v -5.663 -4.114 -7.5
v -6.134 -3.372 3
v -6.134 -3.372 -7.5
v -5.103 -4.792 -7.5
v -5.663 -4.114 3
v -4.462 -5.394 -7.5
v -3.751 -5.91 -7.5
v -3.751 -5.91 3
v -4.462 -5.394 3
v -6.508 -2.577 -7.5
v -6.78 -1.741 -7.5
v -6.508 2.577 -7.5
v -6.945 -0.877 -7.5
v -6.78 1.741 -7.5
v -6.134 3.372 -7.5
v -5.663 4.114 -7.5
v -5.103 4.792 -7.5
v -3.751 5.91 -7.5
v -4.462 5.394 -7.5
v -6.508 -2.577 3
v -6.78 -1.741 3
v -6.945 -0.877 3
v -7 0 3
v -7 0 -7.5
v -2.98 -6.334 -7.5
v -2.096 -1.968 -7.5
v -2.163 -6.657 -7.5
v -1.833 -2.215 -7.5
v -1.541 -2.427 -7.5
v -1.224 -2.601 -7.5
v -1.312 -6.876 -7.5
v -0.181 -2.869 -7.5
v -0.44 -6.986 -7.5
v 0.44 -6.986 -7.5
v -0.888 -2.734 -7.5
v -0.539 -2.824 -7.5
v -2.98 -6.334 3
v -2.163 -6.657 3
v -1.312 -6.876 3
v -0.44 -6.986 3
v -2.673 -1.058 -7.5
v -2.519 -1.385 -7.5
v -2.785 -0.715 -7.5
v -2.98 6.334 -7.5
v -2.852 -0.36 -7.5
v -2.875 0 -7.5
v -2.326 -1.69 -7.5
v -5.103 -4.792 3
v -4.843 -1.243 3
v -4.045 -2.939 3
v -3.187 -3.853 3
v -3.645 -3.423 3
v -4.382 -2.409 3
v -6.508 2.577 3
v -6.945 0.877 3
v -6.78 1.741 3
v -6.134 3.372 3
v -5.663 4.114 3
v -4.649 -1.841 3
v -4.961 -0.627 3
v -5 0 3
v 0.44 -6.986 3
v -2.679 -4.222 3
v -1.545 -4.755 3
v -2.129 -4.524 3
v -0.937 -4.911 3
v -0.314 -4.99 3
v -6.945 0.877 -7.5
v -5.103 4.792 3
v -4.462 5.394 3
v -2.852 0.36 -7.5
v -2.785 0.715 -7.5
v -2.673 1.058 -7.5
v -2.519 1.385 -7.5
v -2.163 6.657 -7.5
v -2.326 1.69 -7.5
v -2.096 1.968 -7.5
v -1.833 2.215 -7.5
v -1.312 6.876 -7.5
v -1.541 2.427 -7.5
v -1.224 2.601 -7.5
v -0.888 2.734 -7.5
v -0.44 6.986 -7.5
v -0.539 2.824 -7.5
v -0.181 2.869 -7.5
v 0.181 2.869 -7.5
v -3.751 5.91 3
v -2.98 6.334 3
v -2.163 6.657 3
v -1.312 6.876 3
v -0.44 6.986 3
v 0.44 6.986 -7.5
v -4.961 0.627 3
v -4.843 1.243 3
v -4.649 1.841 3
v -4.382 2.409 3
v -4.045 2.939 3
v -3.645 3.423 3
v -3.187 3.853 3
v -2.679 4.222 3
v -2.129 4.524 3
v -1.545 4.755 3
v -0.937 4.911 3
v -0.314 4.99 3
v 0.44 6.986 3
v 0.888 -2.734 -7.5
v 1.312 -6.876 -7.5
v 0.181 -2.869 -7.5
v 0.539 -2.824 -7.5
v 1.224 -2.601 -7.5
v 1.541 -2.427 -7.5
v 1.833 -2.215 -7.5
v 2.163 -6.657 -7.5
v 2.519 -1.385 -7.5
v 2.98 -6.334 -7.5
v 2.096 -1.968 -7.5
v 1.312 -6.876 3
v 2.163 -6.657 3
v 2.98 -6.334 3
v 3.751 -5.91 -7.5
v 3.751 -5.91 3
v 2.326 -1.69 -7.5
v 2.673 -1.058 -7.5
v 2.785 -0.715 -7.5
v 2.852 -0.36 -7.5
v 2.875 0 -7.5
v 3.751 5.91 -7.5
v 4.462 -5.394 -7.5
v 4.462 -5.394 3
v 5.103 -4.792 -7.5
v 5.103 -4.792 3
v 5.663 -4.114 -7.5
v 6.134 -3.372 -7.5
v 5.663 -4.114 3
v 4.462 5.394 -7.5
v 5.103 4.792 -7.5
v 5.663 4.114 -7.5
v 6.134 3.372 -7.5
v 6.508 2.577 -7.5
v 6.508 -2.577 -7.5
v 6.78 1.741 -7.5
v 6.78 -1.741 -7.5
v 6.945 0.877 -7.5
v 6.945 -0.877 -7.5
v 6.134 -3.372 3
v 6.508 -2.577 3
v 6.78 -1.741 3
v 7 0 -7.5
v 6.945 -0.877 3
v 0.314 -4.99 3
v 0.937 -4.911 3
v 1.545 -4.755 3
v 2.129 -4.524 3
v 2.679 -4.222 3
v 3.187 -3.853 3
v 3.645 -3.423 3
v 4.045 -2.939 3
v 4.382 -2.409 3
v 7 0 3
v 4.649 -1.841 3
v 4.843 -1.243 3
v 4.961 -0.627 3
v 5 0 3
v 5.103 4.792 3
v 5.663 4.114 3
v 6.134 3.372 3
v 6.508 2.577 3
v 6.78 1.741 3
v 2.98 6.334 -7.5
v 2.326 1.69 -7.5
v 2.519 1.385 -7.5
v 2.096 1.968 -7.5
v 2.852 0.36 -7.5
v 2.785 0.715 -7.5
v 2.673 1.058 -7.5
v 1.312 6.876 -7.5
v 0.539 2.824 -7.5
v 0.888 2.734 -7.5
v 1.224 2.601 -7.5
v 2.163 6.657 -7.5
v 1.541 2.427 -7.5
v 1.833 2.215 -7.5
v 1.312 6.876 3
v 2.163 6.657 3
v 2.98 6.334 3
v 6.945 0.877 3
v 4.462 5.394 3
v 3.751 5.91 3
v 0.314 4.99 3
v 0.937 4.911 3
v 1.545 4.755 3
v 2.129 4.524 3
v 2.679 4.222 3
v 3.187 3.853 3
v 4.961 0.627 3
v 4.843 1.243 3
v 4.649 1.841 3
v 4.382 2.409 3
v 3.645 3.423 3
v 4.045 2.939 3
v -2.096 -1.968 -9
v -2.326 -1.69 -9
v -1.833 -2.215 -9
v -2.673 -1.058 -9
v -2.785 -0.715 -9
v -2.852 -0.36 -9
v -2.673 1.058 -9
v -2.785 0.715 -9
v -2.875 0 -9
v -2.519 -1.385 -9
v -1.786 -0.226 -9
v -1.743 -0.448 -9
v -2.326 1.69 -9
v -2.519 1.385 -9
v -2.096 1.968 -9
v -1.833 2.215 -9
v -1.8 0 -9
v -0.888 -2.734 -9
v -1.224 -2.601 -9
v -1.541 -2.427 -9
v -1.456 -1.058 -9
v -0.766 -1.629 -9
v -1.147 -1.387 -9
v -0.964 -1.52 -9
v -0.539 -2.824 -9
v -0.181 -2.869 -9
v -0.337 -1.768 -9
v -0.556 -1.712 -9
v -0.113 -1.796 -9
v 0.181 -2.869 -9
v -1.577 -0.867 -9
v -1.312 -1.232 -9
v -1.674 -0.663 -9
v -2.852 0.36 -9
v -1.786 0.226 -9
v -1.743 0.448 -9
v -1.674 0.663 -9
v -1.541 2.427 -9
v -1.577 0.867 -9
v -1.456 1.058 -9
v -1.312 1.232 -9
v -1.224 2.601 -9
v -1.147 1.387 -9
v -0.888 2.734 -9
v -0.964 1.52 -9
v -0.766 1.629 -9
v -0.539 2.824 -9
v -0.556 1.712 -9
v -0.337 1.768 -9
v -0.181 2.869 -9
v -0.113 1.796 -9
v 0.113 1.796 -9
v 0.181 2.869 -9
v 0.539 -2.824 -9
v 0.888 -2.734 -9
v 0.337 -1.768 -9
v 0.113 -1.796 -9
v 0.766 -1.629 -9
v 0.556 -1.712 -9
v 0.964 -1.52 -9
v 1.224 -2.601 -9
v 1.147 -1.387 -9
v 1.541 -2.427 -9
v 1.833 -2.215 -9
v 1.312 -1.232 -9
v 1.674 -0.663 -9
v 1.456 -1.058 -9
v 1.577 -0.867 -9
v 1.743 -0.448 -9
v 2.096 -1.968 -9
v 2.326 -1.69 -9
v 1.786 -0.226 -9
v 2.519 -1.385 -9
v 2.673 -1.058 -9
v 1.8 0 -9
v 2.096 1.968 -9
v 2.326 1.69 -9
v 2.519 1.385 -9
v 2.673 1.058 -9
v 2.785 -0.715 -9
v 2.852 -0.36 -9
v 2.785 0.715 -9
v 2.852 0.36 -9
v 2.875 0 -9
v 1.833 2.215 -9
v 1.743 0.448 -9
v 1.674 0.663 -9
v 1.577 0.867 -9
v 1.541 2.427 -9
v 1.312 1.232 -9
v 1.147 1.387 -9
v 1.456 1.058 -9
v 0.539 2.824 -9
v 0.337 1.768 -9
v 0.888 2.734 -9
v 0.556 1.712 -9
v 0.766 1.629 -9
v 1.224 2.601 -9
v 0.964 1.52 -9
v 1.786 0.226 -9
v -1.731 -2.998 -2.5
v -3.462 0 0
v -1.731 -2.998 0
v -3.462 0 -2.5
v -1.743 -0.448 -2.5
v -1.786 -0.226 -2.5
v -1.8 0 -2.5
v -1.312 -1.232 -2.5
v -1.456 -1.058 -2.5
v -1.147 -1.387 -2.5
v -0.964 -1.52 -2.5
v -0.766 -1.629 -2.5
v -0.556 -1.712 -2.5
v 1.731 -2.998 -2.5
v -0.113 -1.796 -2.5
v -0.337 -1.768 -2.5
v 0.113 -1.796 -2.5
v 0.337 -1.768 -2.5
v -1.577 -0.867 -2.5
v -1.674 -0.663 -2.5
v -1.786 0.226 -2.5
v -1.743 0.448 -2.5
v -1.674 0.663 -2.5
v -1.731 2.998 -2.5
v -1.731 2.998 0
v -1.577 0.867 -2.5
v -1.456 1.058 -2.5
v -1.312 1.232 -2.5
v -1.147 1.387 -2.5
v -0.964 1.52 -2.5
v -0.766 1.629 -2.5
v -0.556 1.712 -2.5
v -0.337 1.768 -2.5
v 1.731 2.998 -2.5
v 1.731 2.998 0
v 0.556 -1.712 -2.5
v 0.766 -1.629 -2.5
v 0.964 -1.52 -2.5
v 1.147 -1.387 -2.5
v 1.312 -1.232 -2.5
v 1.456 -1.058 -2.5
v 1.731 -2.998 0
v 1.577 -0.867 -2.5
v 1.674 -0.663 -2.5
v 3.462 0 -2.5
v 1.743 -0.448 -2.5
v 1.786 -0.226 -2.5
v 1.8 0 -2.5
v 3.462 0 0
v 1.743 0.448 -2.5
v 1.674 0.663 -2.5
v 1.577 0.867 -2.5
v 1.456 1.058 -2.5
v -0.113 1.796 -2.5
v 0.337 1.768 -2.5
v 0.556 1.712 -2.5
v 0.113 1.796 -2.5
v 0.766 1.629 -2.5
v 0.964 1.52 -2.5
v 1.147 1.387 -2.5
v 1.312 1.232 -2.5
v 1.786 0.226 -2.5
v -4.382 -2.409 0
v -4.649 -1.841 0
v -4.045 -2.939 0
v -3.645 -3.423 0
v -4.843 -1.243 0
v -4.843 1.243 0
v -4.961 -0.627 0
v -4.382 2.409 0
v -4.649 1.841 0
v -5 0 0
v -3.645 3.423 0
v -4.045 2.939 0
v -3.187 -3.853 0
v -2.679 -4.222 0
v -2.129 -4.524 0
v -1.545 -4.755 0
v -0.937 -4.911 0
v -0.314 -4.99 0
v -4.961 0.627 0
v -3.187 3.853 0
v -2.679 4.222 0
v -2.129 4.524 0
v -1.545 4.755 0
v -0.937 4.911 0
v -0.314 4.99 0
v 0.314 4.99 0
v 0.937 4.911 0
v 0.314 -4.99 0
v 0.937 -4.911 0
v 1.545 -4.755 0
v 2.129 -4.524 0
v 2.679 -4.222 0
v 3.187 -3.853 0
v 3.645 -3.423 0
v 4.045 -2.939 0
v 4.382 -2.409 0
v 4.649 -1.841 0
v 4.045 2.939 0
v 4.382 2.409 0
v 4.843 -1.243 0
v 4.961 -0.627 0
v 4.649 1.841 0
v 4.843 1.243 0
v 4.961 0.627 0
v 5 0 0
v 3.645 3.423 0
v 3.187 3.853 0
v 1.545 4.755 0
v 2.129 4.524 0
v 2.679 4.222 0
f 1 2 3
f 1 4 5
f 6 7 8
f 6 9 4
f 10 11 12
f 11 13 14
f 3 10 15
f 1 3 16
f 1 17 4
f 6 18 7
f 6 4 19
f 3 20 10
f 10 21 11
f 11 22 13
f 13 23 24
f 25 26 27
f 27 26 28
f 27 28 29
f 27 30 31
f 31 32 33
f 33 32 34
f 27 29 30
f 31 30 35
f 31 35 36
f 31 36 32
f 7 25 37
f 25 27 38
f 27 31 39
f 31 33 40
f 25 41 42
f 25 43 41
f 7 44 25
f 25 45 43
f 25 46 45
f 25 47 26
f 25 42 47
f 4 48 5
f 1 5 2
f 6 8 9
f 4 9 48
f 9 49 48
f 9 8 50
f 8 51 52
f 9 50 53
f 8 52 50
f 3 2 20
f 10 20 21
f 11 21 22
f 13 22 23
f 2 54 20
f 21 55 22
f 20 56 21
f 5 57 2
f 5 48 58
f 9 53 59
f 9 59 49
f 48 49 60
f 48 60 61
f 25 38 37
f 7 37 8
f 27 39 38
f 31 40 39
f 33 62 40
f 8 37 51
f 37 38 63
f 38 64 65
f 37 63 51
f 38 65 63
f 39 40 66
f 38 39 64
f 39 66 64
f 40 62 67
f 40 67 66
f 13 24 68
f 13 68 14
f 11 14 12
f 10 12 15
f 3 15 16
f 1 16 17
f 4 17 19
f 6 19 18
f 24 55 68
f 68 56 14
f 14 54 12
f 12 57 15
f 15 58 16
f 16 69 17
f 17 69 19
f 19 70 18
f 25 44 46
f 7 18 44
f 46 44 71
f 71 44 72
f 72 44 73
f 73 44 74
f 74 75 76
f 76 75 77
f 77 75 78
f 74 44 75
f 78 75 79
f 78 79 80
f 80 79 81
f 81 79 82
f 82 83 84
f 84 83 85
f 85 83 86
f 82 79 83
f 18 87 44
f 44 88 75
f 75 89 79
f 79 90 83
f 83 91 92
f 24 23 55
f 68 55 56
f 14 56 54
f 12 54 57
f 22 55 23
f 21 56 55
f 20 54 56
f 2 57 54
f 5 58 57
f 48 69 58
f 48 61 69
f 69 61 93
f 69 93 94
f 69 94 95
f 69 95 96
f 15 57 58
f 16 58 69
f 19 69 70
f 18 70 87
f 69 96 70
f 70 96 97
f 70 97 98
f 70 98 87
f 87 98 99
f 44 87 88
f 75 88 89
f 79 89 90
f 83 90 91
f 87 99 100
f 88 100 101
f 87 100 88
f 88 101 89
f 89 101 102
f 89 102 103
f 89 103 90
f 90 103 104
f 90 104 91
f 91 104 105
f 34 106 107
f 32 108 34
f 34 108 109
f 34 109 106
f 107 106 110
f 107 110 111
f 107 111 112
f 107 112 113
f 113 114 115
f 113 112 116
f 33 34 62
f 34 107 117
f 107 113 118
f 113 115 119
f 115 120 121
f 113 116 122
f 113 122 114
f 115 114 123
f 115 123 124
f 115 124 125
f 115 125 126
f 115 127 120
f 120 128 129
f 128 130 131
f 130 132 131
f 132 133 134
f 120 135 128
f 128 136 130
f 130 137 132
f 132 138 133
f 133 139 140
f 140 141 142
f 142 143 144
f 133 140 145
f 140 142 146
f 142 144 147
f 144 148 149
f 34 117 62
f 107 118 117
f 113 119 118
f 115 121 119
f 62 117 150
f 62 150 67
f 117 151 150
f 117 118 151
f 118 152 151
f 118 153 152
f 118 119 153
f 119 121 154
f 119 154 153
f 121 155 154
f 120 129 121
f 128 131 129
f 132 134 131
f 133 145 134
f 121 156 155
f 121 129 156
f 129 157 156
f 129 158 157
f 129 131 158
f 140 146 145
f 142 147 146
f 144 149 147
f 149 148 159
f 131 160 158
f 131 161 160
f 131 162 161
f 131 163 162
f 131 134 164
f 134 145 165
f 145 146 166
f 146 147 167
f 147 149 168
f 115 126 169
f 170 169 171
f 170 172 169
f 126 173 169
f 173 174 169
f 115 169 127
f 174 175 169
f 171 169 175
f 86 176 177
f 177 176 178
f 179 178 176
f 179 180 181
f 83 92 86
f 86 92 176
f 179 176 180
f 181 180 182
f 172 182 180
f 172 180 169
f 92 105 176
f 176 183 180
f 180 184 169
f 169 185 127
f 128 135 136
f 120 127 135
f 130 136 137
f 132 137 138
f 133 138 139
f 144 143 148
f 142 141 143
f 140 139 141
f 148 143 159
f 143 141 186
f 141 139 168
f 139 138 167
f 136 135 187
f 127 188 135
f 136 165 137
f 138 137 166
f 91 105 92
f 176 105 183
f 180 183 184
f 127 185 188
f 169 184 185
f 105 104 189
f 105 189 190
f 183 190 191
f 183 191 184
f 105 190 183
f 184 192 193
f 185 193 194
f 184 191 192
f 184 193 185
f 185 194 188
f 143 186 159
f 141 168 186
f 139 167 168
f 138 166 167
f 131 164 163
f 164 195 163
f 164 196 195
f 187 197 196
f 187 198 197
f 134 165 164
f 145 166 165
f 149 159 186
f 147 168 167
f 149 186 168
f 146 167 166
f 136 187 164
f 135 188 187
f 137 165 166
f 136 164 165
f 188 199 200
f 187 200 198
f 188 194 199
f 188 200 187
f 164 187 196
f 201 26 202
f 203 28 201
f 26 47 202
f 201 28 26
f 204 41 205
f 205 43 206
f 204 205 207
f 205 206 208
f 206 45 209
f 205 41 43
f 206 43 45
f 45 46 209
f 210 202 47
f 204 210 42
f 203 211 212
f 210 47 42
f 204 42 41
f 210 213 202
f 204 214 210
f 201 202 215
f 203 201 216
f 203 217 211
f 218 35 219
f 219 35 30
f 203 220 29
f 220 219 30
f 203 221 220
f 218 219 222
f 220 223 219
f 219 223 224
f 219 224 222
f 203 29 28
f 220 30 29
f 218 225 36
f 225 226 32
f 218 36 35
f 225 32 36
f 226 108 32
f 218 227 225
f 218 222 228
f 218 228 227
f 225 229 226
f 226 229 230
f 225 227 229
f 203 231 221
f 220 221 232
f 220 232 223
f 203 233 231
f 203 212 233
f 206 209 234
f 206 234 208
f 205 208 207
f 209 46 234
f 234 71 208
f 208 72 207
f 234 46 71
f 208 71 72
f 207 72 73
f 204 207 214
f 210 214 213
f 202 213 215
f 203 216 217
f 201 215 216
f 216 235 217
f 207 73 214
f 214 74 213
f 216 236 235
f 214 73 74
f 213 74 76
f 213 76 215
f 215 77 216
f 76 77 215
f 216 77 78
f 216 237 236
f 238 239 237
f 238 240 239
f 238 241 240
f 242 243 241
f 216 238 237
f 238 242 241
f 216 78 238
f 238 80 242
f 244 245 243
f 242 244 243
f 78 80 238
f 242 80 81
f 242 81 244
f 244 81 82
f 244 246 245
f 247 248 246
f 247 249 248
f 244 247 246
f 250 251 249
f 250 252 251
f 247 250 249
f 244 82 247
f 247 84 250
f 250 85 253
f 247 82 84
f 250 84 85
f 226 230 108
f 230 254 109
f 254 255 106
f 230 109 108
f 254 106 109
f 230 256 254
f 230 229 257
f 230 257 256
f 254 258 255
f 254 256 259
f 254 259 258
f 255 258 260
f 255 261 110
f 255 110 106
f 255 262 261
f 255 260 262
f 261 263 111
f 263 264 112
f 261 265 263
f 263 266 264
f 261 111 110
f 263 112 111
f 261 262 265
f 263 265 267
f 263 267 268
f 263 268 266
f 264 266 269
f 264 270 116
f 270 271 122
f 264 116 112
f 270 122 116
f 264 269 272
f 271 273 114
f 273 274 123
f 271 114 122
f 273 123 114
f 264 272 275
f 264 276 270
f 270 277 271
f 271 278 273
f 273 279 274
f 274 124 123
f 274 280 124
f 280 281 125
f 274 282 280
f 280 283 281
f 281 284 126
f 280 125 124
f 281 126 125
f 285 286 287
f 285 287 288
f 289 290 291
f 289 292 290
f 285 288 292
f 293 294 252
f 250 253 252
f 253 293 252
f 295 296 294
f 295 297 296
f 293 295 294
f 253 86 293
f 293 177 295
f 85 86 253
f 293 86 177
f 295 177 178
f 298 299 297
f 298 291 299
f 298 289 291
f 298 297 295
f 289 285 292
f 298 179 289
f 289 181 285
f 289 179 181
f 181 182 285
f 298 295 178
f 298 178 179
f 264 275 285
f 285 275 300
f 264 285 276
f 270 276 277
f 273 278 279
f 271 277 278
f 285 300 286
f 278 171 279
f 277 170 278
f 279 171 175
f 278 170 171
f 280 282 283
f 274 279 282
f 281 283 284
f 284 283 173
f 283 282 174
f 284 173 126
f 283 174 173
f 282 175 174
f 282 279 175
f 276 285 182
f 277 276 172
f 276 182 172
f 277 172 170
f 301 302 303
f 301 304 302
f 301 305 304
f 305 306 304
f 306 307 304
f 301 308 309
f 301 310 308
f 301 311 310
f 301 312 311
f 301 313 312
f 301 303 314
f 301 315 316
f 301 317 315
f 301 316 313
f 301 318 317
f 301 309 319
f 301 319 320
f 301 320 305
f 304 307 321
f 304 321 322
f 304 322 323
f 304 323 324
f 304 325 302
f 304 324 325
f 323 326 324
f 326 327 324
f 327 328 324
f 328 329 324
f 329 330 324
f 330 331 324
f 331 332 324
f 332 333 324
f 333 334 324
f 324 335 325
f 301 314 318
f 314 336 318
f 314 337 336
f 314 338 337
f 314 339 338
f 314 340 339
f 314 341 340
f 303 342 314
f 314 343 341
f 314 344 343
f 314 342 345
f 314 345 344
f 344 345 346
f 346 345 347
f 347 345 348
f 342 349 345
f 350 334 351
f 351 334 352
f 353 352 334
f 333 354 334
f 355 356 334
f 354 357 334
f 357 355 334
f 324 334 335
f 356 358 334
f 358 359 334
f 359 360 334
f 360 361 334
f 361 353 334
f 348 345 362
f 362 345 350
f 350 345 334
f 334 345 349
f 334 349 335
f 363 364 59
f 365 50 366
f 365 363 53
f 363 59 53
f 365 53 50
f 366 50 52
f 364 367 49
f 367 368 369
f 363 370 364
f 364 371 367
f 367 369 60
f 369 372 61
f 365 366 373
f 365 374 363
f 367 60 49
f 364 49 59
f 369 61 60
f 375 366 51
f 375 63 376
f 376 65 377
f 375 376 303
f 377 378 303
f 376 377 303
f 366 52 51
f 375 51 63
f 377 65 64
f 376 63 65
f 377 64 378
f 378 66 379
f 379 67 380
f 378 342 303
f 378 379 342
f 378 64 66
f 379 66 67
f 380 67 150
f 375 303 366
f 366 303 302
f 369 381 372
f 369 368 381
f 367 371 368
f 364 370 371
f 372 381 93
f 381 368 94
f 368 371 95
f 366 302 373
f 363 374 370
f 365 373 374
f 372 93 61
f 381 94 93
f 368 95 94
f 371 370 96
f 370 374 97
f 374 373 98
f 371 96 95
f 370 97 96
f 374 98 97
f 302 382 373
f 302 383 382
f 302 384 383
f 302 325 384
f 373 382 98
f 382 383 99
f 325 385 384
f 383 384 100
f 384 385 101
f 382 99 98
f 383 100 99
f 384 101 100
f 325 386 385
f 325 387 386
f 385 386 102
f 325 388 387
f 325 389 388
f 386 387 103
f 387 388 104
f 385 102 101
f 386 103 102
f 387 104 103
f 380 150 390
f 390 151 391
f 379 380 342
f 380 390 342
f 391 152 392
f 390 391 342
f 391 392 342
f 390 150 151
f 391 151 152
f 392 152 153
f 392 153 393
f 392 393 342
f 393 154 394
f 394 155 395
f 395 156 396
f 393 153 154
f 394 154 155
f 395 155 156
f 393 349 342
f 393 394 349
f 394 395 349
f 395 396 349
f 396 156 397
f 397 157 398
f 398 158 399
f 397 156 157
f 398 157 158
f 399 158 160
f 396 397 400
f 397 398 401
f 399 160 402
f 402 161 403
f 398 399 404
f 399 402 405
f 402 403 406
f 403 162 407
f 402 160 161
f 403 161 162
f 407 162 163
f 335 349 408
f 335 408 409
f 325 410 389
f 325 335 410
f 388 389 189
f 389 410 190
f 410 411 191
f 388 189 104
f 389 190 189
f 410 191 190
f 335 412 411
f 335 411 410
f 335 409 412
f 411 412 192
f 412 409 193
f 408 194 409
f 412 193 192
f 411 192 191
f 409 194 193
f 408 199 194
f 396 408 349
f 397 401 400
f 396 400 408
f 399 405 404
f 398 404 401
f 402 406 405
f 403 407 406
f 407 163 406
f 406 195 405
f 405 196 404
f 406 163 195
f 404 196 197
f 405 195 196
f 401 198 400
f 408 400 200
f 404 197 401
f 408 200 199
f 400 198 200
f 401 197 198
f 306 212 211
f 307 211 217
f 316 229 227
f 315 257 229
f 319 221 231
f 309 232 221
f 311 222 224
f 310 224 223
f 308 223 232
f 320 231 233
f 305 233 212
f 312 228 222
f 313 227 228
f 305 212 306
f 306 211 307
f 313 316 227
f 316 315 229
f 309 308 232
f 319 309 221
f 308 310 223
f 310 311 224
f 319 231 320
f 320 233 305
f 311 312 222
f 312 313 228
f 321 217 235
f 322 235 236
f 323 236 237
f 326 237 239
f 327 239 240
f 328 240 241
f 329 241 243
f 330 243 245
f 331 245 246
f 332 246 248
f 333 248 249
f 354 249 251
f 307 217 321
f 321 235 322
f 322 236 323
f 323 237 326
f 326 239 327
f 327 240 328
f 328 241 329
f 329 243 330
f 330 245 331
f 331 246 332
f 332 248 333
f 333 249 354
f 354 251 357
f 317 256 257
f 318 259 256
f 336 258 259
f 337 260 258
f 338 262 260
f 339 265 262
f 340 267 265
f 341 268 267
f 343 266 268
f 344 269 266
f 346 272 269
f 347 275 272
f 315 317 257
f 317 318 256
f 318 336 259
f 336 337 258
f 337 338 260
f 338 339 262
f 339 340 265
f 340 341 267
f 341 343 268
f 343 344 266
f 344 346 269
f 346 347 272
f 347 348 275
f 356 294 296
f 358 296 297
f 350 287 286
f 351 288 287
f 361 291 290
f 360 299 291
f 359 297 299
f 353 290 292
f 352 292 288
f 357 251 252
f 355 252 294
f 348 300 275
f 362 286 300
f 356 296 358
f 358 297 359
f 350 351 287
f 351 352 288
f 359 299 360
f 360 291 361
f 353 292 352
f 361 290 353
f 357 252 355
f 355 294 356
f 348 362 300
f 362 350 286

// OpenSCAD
$fn = 50;

difference() {
	union() {
		translate(v = [0, 0, -7.5]) {
			cylinder(h = 10.5, r = 7.0);
		}
		#translate(v = [0, 0, -9.0]) {
			cylinder(h = 9, r = 2.875);
		}
	}
	union() {
		translate(v = [0, 0, 0]) {
			rotate(a = [0, 0, 0]) {
				difference() {
					union() {
						translate(v = [0, 0, -2.5]) {
							linear_extrude(height = 2.5) {
								polygon(points = [[3.4619999999999997, 0.0], [1.7310000000000003, 2.9981799479017264], [-1.7309999999999992, 2.9981799479017264], [-3.4619999999999997, 4.2397272186481365e-16], [-1.7310000000000014, -2.998179947901726], [1.7309999999999977, -2.9981799479017277]]);
							}
						}
					}
					union();
				}
			}
		}
		#cylinder(h = 3, r = 5.0);
		#translate(v = [0, 0, -100.0]) {
			cylinder(h = 200, r = 1.8);
		}
	}
}
